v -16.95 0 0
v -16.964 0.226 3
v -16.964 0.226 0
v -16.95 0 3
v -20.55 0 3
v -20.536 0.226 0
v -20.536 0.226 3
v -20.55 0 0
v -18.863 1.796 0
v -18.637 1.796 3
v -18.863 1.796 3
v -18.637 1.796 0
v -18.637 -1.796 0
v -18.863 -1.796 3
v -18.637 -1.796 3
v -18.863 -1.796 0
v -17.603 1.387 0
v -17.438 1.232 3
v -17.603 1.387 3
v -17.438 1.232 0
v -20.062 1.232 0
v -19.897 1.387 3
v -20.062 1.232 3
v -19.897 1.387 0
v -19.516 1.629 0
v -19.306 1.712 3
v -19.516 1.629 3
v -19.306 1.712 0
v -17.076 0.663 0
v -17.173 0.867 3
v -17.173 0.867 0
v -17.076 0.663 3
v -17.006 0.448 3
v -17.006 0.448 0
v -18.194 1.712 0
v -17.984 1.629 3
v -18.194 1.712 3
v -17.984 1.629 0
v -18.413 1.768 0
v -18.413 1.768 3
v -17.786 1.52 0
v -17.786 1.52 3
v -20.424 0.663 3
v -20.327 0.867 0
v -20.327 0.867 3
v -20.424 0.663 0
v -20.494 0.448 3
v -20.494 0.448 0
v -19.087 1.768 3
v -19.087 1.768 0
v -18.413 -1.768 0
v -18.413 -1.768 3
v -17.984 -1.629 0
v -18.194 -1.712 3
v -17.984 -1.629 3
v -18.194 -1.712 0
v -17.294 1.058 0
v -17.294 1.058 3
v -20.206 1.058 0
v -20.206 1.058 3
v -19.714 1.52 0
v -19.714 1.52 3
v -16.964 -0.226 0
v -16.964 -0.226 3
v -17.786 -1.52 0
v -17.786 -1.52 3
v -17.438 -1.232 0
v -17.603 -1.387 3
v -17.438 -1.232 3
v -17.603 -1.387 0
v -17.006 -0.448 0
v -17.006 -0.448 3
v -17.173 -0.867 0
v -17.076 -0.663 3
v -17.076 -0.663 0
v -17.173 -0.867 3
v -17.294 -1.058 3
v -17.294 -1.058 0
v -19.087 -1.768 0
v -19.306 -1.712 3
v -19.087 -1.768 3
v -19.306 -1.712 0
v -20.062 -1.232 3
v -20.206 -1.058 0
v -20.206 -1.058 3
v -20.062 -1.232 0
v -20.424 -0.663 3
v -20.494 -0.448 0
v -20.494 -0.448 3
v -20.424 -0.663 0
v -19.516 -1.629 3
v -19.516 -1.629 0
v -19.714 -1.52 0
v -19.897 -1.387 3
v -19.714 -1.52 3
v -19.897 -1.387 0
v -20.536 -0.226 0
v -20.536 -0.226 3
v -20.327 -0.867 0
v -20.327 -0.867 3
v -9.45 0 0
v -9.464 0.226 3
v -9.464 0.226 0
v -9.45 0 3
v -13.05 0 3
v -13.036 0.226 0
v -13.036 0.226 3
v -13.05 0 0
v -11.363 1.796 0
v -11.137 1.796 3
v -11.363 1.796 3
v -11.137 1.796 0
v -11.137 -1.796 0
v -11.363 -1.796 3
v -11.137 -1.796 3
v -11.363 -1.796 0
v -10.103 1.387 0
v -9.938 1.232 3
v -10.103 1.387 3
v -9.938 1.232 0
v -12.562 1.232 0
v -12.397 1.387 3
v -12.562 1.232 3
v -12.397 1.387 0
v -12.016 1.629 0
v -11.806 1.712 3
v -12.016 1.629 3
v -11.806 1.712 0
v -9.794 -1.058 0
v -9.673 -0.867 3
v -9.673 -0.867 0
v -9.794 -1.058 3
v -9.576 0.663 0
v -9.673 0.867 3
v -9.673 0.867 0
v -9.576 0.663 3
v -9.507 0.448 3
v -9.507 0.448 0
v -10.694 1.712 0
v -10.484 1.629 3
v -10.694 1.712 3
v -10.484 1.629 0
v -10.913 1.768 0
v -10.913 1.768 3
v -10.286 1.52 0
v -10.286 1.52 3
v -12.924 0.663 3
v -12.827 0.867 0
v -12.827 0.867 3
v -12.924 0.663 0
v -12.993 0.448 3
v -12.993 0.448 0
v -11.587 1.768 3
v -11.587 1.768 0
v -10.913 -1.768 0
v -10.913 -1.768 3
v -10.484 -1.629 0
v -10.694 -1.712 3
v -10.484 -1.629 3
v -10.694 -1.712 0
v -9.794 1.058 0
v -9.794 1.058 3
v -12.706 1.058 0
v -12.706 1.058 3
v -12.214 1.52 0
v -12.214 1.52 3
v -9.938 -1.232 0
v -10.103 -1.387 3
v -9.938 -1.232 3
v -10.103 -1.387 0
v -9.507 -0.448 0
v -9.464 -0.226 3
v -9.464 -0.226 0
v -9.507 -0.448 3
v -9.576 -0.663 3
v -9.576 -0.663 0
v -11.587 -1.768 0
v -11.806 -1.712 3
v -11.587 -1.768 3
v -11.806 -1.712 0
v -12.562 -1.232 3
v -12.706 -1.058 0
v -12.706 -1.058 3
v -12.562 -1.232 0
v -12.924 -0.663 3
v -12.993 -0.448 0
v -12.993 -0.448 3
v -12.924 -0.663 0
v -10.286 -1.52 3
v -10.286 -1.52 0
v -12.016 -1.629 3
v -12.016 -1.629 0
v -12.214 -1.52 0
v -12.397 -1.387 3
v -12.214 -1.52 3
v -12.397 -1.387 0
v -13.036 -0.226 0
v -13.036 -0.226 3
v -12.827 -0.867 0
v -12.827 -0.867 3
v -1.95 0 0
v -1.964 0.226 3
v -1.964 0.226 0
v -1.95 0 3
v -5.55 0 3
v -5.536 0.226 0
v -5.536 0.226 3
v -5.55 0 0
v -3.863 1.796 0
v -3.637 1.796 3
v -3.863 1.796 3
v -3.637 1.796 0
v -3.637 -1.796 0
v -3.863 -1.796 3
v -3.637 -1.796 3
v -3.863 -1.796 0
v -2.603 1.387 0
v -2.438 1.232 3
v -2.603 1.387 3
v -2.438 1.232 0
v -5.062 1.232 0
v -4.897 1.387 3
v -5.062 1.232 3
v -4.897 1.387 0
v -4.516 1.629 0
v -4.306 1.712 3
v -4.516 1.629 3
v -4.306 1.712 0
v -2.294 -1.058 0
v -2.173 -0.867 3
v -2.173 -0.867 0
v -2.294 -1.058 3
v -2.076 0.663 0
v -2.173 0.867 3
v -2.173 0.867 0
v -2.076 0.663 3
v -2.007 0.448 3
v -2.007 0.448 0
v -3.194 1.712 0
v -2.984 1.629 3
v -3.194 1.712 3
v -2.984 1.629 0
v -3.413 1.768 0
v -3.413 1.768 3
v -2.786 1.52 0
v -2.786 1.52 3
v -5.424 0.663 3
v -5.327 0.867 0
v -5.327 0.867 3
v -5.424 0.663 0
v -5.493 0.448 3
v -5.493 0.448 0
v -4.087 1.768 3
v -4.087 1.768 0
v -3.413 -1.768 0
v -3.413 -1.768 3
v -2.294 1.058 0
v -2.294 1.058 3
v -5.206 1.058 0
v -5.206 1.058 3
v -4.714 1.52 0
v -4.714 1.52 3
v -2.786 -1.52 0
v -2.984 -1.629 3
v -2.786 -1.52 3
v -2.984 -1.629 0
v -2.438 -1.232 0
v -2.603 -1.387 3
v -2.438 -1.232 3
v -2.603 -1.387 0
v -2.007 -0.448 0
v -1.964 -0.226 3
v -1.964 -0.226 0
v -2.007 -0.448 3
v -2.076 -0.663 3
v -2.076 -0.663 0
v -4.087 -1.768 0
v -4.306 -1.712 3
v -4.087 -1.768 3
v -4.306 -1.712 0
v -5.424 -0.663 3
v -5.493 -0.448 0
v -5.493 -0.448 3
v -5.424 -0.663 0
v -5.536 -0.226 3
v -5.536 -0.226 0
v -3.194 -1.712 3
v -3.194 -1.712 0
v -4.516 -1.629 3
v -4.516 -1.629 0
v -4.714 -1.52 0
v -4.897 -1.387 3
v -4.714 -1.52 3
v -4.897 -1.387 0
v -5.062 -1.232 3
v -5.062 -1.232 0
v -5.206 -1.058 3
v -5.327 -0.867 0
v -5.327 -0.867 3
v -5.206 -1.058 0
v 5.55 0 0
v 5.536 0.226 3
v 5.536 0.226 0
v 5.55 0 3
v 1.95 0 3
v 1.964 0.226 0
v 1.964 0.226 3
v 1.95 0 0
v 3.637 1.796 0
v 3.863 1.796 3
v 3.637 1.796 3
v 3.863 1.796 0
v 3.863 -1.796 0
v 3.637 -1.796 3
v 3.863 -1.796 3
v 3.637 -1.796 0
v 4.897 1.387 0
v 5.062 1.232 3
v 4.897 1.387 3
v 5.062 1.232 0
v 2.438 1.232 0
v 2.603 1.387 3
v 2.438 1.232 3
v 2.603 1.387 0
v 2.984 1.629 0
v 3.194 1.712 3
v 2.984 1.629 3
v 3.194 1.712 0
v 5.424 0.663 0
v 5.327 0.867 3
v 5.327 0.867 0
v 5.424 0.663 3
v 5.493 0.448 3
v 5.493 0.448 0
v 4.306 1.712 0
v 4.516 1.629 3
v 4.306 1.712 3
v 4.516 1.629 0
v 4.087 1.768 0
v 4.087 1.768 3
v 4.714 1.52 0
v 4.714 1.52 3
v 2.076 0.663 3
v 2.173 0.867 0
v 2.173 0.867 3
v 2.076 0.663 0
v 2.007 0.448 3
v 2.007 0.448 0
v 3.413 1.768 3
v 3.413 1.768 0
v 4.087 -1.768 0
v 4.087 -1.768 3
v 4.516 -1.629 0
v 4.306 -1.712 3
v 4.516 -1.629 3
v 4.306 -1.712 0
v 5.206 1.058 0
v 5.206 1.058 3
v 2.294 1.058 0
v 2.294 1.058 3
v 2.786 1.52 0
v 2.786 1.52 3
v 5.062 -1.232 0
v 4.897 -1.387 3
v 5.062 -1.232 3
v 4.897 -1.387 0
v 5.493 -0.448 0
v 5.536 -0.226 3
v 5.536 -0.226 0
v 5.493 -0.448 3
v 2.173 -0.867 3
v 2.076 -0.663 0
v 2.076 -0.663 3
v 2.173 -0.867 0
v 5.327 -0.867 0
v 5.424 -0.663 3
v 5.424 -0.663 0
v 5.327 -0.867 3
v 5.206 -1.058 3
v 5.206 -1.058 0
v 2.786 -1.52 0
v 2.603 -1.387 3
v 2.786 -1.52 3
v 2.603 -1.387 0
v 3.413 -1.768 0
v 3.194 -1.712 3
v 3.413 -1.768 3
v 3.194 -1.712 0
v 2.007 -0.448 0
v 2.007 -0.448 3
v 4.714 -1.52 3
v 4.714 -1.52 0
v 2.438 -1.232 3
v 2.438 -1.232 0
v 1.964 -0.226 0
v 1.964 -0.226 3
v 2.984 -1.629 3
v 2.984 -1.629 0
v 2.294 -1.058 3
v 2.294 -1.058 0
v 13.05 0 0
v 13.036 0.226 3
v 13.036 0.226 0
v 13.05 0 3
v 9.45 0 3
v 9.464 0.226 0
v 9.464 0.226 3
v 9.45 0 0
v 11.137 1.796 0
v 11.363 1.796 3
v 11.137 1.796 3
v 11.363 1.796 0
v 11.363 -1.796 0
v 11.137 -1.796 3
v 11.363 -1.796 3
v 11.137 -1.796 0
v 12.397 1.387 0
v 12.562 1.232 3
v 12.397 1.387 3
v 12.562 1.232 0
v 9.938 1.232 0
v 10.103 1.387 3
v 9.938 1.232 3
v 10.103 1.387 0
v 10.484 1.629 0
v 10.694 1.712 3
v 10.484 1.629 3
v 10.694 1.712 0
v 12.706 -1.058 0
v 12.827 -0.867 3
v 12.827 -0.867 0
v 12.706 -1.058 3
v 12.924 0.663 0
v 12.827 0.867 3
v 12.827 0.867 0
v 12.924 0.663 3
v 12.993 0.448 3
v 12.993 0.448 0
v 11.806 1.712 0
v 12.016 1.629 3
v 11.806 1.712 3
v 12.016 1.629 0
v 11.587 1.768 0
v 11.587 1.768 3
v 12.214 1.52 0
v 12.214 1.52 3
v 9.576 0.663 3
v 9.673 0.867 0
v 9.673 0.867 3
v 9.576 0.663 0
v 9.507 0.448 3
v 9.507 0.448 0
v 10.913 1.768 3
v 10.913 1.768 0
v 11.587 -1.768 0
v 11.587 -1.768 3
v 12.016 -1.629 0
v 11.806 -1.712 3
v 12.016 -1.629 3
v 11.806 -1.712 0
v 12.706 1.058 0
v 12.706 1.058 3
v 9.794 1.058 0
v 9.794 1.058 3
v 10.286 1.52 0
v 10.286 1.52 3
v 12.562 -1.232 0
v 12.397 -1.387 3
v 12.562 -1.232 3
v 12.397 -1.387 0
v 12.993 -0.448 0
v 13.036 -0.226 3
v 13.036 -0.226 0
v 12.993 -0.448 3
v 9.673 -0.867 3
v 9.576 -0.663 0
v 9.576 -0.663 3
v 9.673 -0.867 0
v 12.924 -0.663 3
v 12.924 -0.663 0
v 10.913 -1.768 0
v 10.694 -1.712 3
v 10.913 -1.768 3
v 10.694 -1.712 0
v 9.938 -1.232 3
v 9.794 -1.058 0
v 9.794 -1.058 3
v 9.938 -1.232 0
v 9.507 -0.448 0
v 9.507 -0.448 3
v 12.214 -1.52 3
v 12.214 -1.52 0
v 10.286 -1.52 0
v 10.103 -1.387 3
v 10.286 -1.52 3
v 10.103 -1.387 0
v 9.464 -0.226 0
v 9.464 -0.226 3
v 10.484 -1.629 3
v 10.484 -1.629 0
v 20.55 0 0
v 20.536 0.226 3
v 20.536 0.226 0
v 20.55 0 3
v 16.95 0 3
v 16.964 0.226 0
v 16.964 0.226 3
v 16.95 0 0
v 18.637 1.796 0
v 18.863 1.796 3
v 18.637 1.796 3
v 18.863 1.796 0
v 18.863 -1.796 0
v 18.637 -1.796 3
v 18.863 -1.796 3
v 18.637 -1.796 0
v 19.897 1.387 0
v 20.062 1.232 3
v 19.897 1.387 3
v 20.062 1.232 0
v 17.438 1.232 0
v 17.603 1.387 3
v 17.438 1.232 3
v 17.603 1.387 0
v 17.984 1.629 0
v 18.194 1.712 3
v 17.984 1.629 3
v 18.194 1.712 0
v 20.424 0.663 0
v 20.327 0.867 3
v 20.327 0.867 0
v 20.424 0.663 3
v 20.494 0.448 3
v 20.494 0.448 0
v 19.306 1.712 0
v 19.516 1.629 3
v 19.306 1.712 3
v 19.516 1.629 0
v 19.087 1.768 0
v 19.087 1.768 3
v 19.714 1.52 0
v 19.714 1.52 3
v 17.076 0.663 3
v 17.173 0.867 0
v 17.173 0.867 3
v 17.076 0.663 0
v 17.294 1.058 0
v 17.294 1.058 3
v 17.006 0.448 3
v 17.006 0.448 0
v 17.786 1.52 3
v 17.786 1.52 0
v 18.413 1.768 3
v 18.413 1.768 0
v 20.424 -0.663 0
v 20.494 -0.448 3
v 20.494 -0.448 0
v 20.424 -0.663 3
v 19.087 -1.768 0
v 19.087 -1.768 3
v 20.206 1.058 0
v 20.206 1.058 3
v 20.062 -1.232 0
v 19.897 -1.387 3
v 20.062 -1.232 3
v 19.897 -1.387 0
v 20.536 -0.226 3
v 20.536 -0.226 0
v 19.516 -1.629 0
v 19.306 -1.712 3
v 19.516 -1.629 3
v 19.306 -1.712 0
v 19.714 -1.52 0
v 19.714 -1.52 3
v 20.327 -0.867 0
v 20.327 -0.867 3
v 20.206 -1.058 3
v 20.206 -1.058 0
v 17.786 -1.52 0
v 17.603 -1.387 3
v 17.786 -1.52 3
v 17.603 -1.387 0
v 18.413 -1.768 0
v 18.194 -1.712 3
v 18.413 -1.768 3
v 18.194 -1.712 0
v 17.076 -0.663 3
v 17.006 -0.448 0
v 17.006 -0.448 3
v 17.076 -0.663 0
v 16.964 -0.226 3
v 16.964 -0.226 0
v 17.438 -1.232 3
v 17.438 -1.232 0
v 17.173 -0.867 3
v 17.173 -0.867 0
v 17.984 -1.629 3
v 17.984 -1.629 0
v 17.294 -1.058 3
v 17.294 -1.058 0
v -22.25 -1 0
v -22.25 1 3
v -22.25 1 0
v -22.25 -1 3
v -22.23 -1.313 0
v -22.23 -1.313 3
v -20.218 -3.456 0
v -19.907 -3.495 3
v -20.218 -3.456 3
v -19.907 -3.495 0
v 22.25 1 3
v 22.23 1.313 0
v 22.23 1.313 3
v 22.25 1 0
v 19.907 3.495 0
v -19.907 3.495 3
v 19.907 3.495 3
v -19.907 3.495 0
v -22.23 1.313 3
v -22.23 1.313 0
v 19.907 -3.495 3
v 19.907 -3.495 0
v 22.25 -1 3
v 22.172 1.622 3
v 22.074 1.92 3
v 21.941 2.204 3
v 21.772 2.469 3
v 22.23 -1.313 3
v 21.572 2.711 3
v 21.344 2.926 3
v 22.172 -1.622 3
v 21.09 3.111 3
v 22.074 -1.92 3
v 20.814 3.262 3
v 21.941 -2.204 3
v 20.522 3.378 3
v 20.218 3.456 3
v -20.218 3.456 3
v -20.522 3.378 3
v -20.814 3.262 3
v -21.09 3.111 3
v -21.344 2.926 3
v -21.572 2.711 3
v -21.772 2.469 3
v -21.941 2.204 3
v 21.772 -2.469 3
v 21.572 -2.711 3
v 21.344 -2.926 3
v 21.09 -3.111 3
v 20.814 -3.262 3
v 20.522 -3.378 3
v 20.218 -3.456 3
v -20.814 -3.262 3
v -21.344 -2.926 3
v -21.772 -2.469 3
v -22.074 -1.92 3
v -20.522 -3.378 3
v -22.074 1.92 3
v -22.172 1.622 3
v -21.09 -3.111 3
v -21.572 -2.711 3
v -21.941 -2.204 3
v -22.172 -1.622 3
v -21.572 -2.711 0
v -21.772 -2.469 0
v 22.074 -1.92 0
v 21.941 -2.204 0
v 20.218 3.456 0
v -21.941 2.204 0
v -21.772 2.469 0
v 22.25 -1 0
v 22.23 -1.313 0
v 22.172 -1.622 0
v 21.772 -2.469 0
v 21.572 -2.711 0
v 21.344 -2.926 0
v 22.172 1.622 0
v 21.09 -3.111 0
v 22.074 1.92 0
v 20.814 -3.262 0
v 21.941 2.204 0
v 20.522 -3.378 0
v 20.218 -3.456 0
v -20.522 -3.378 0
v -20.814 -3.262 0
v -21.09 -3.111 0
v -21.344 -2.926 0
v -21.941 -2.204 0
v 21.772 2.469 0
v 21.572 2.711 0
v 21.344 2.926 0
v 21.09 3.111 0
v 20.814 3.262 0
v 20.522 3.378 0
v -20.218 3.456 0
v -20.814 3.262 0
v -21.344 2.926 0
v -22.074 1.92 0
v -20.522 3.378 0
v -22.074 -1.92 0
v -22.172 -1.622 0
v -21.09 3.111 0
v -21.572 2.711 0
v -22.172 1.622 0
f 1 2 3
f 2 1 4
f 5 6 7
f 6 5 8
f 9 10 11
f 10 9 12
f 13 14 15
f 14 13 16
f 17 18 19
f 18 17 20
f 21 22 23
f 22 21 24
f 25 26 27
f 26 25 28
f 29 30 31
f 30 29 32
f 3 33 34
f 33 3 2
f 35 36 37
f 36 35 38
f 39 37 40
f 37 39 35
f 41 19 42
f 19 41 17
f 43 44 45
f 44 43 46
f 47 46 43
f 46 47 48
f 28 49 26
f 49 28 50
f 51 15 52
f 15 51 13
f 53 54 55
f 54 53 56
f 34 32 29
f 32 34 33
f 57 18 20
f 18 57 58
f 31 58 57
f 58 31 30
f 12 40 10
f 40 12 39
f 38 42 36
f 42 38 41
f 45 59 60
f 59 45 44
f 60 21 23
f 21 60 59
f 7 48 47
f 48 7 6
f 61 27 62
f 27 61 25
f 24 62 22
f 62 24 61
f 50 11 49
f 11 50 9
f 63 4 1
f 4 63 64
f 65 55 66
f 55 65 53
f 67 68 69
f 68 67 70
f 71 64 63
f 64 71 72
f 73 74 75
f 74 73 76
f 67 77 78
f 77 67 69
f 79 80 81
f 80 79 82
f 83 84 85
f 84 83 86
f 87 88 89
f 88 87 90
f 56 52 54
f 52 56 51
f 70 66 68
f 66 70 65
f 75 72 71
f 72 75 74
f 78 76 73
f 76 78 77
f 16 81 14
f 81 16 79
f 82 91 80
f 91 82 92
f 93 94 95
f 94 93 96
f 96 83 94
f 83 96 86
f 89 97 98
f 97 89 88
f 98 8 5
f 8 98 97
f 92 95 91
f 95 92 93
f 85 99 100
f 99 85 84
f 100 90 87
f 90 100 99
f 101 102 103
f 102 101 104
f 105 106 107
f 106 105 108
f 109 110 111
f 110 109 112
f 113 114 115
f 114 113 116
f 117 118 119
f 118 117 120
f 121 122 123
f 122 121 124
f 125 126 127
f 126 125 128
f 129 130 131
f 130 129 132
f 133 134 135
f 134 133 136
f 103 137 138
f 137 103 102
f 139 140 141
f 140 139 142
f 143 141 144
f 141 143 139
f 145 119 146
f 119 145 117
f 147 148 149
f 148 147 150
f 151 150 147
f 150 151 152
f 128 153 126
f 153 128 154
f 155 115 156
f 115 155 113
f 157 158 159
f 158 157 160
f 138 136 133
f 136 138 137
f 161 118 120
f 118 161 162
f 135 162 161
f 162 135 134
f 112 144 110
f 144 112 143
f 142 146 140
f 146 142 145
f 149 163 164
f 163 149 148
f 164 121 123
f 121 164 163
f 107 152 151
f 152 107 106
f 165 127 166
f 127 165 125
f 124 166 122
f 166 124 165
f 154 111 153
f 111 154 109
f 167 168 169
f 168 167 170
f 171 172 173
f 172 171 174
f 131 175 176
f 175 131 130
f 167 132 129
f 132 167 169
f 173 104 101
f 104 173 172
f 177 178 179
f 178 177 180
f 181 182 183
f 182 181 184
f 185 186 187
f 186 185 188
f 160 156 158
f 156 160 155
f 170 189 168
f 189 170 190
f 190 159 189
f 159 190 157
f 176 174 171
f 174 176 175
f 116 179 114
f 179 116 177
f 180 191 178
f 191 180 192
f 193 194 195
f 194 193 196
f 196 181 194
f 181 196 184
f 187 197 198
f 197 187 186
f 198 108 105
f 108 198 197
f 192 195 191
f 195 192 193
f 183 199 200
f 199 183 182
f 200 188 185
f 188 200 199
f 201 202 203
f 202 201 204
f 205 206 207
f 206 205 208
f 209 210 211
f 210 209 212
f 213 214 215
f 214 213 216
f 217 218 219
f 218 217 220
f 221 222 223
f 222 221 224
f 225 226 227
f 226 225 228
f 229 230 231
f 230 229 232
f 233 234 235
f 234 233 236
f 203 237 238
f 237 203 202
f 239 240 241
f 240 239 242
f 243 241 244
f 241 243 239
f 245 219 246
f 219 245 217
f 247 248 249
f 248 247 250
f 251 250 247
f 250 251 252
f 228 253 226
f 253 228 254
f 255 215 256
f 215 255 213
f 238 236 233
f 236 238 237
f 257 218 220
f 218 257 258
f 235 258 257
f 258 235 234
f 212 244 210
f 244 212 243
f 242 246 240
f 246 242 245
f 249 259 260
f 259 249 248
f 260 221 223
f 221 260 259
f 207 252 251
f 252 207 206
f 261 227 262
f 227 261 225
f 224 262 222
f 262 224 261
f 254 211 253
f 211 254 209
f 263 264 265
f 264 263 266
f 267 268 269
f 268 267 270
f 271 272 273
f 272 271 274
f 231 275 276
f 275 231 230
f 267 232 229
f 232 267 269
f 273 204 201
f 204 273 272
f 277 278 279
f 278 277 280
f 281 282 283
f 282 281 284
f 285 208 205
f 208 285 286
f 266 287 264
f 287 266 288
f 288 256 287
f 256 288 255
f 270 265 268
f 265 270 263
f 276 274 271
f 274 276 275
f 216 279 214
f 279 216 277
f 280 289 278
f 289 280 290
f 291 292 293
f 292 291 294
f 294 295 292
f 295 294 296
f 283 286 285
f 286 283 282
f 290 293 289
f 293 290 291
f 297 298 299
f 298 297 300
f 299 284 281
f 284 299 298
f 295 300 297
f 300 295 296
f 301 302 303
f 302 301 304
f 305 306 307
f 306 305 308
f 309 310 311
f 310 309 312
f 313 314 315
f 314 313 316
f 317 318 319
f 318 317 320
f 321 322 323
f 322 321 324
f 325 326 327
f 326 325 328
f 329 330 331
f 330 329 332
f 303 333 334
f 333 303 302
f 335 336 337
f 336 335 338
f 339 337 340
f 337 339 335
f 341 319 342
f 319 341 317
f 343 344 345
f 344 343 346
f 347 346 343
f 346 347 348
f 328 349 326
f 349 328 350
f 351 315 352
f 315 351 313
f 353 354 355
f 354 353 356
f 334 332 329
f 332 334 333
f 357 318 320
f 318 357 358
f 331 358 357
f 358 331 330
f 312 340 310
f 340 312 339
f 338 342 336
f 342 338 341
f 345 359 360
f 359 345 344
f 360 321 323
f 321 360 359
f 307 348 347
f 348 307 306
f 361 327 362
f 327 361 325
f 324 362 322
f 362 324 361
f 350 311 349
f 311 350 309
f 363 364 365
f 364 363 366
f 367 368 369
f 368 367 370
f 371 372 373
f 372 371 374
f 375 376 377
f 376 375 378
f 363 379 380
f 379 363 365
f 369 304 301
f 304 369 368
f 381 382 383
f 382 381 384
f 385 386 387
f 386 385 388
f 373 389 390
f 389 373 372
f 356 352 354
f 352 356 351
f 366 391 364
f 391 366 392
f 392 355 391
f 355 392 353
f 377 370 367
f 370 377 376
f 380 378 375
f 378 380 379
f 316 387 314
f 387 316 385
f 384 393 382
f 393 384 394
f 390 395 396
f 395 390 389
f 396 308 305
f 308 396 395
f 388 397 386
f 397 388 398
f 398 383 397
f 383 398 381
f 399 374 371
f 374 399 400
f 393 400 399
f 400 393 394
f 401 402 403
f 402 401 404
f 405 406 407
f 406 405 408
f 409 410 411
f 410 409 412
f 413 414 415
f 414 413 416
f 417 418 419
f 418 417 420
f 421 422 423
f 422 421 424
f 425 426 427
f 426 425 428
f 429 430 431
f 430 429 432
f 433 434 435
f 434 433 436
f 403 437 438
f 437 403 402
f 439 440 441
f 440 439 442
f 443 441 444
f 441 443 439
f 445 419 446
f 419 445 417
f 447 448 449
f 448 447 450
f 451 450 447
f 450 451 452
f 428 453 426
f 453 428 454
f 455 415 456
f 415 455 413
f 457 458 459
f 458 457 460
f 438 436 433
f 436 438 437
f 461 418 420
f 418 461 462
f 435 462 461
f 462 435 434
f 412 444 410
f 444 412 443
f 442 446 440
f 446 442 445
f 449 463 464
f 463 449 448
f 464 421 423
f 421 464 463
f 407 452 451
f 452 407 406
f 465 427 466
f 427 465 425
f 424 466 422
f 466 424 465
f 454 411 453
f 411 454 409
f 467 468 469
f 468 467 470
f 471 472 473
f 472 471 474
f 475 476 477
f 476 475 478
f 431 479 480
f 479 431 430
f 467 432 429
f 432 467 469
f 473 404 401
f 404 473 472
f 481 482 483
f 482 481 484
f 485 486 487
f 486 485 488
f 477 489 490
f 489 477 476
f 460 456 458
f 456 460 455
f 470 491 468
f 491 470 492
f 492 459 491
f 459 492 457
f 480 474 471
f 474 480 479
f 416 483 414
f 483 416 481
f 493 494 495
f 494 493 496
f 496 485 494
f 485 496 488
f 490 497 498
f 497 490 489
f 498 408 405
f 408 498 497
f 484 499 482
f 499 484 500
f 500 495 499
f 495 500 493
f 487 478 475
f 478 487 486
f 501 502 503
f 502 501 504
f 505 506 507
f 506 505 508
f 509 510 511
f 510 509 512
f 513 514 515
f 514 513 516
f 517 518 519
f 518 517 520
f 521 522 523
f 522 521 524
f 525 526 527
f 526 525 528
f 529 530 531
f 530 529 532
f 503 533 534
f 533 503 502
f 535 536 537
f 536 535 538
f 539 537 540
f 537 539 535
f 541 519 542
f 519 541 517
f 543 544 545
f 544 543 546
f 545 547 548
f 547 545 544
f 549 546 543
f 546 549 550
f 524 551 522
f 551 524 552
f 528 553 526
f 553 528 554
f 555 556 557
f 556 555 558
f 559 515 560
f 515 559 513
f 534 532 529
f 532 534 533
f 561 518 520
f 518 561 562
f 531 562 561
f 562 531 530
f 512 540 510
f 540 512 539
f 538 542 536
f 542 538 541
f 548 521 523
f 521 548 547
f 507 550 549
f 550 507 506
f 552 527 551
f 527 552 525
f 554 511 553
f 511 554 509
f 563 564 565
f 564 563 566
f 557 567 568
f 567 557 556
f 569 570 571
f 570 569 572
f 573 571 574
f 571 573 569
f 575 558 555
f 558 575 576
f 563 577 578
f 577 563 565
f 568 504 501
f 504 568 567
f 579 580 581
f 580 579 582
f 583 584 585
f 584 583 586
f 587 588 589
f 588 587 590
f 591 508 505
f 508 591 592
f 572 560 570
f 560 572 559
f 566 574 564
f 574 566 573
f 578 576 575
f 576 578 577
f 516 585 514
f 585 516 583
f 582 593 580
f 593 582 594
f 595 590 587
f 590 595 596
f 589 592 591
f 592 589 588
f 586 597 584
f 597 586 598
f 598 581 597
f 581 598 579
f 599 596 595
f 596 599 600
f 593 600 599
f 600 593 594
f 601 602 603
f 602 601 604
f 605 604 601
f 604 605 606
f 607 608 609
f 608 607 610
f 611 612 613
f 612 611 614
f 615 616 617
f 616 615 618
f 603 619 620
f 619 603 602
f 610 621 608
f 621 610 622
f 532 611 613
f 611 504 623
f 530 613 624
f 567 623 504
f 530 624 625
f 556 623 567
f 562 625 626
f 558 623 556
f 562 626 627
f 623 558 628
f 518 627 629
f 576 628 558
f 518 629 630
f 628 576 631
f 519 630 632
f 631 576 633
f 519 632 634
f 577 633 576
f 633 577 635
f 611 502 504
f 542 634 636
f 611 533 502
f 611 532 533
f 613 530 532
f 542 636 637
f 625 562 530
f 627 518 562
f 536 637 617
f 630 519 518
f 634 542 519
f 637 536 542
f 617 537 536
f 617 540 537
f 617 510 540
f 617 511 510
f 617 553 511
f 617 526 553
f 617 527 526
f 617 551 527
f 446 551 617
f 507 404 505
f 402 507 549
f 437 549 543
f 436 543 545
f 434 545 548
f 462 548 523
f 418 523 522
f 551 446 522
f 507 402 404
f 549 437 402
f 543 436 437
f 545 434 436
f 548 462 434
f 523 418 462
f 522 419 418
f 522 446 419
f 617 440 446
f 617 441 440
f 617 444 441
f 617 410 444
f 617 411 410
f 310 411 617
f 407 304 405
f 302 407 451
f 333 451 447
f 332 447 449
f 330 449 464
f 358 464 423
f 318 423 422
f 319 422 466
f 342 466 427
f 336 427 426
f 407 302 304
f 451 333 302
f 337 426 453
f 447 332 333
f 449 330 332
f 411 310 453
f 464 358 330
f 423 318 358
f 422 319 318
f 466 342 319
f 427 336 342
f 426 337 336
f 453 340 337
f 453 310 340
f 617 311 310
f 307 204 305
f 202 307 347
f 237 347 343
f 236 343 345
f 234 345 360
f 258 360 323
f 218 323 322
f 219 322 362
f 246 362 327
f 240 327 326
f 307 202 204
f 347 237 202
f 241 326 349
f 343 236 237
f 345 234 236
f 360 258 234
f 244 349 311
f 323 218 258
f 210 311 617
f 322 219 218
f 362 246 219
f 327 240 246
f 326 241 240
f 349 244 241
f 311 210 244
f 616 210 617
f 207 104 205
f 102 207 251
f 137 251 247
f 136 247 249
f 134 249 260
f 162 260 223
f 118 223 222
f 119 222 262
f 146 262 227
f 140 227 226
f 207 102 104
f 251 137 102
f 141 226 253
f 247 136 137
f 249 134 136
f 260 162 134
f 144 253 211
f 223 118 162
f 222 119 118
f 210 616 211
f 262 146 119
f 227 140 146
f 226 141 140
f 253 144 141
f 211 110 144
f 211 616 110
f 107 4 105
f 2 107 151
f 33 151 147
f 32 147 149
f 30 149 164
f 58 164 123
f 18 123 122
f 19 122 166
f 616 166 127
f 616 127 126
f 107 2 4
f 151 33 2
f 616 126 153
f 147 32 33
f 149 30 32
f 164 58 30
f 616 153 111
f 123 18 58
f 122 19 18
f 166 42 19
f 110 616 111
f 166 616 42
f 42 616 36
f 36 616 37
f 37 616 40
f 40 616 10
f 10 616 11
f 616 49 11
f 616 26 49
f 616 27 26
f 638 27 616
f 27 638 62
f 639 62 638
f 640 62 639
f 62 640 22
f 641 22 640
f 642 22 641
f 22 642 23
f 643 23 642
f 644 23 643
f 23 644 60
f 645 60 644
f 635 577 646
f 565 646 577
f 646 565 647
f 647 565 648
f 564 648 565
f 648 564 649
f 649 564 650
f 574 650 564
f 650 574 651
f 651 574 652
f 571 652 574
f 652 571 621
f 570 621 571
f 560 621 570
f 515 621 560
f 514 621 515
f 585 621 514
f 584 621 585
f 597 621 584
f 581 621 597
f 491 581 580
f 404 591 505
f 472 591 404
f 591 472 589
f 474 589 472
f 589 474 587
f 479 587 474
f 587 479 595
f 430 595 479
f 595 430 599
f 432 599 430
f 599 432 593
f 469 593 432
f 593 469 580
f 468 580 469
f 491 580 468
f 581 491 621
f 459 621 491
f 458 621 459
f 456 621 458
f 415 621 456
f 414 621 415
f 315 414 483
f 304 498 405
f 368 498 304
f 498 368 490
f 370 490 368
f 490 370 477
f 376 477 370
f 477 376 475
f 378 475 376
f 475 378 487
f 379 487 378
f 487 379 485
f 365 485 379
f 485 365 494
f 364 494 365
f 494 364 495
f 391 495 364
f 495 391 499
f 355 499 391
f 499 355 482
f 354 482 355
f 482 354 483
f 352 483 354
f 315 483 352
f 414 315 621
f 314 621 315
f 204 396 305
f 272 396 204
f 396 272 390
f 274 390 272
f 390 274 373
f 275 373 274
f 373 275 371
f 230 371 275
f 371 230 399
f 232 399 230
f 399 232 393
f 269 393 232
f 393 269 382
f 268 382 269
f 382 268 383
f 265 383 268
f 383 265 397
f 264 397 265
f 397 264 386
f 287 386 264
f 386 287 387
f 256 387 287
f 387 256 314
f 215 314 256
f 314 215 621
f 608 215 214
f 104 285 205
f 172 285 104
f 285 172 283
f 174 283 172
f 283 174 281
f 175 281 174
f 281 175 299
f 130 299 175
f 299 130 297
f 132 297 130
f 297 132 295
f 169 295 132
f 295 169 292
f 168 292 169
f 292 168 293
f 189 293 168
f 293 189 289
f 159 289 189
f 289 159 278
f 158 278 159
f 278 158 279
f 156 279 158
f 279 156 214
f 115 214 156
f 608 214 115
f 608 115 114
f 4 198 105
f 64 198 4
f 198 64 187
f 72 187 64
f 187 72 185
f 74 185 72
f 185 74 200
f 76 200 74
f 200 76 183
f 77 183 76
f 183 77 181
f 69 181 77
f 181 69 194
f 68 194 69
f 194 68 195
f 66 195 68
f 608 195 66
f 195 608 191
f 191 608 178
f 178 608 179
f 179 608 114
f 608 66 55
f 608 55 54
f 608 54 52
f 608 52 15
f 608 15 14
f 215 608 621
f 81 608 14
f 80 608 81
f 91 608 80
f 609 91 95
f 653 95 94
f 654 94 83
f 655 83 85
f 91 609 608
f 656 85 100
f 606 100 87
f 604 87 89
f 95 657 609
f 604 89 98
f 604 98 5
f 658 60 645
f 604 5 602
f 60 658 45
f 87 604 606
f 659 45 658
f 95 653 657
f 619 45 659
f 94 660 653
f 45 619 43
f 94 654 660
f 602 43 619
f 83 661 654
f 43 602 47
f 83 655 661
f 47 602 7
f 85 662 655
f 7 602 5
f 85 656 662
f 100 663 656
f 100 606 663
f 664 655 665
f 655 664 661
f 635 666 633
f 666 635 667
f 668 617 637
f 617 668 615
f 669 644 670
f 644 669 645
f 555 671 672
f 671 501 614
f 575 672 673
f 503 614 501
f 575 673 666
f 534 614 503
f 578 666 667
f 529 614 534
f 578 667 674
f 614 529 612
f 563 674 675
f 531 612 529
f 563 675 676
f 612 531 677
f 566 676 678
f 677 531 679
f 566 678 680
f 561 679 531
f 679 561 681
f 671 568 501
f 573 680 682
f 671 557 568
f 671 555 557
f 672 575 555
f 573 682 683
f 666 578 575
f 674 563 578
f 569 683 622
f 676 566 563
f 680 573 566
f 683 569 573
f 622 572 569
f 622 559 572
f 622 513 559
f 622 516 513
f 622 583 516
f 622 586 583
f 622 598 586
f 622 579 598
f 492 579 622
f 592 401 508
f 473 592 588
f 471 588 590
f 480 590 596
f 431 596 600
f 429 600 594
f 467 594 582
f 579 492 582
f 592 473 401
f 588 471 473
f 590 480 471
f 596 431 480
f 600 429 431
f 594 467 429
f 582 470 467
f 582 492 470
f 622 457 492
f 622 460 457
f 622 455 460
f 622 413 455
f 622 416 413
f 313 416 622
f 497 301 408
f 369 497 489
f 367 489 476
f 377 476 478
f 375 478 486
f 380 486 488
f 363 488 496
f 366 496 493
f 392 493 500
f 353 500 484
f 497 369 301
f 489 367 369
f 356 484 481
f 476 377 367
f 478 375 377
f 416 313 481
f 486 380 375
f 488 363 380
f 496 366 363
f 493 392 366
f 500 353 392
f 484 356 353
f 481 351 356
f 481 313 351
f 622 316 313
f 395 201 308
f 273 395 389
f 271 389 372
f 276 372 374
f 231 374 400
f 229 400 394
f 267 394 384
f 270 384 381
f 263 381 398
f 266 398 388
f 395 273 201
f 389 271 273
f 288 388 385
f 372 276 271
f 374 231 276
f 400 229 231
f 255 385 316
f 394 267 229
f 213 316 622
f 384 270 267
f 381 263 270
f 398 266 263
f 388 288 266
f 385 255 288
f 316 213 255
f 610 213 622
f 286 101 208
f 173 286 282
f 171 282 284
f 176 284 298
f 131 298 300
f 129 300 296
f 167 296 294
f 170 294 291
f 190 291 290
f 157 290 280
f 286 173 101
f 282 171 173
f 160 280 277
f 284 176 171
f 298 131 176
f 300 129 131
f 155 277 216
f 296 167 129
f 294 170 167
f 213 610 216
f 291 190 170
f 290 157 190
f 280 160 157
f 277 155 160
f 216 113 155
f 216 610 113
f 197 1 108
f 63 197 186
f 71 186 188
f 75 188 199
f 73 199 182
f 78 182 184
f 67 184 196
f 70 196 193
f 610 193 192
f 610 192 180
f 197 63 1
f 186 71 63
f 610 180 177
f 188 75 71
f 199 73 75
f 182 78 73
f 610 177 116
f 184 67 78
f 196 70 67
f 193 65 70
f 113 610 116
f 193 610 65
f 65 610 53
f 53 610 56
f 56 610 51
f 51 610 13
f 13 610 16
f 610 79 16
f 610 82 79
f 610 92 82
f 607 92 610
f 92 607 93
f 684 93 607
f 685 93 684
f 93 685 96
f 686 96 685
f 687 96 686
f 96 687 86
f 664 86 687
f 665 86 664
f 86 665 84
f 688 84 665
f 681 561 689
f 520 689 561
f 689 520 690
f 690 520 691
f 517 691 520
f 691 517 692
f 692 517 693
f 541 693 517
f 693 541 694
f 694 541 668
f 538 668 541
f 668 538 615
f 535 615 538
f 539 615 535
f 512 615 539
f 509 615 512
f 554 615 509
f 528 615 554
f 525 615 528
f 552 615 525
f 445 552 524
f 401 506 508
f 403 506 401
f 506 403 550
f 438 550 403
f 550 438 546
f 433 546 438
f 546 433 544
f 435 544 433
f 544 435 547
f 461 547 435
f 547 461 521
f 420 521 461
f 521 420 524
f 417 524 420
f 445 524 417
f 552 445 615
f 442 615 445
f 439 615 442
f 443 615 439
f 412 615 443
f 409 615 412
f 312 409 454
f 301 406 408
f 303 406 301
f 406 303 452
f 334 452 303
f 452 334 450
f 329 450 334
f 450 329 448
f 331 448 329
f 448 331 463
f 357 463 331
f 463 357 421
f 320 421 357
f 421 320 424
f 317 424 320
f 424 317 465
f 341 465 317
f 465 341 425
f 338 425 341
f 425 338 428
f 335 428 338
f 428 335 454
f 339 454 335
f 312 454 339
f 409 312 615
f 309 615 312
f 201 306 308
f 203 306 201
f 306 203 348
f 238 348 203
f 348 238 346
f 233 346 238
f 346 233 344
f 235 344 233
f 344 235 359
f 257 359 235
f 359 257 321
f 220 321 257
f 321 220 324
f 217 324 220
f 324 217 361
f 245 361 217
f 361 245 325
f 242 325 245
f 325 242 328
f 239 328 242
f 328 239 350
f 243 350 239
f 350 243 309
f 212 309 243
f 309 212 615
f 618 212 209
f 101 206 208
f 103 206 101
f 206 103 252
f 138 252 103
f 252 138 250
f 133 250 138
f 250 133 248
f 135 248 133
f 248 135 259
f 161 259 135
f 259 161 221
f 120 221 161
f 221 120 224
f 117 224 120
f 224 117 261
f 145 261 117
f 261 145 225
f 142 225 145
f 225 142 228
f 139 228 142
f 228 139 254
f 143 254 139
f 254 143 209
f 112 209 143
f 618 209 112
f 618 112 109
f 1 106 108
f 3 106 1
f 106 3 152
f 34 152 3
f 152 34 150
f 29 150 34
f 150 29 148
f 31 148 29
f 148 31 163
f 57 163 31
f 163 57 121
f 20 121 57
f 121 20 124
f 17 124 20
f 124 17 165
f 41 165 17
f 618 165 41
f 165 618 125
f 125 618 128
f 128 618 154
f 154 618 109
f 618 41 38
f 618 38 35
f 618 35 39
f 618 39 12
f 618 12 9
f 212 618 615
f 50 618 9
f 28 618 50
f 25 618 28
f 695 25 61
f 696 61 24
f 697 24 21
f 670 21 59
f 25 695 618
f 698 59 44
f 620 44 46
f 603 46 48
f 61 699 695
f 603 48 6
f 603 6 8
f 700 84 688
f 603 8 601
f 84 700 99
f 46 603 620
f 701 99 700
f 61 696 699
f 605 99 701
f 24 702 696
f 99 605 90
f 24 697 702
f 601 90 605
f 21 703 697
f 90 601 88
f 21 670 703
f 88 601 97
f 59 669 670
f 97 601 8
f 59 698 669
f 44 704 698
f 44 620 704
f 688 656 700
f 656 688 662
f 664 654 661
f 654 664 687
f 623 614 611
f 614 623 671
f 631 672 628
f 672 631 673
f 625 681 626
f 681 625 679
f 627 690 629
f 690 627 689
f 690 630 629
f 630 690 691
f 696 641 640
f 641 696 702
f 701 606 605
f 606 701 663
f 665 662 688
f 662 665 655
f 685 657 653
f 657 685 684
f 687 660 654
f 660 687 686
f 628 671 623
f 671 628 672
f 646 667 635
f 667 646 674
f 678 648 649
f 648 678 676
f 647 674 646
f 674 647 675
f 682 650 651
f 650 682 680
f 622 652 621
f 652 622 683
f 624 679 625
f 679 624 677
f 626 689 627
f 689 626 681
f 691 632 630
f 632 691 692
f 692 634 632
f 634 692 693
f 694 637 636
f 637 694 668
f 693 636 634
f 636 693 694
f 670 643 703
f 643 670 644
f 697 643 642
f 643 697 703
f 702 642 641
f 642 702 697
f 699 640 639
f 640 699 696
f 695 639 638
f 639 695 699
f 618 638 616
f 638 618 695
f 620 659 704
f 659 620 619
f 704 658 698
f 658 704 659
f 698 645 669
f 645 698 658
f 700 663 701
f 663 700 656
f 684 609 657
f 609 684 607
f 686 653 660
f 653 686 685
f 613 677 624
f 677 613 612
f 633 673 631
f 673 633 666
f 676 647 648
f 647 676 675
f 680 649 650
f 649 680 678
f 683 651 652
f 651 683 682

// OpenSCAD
$fn = 50;


difference() {
	union() {
		translate(v = [0, 0, 0]) {
			rotate(a = [0, 0, 0]) {
				hull() {
					translate(v = [-19.7500000000, 1.0000000000, 0]) {
						rotate(a = [0, 0, 0]) {
							translate(v = [0, 0, 0]) {
								rotate(a = [0, 0, 0]) {
									cylinder(h = 3, r = 2.5000000000);
								}
							}
						}
					}
					translate(v = [19.7500000000, 1.0000000000, 0]) {
						rotate(a = [0, 0, 0]) {
							translate(v = [0, 0, 0]) {
								rotate(a = [0, 0, 0]) {
									cylinder(h = 3, r = 2.5000000000);
								}
							}
						}
					}
					translate(v = [-19.7500000000, -1.0000000000, 0]) {
						rotate(a = [0, 0, 0]) {
							translate(v = [0, 0, 0]) {
								rotate(a = [0, 0, 0]) {
									cylinder(h = 3, r = 2.5000000000);
								}
							}
						}
					}
					translate(v = [19.7500000000, -1.0000000000, 0]) {
						rotate(a = [0, 0, 0]) {
							translate(v = [0, 0, 0]) {
								rotate(a = [0, 0, 0]) {
									cylinder(h = 3, r = 2.5000000000);
								}
							}
						}
					}
				}
			}
		}
	}
	union() {
		translate(v = [-18.7500000000, 0.0000000000, 0]) {
			rotate(a = [0, 0, 0]) {
				translate(v = [0, 0, -50]) {
					rotate(a = [0, 0, 0]) {
						cylinder(h = 100, r = 1.8000000000);
					}
				}
			}
		}
		translate(v = [-11.2500000000, 0.0000000000, 0]) {
			rotate(a = [0, 0, 0]) {
				translate(v = [0, 0, -50]) {
					rotate(a = [0, 0, 0]) {
						cylinder(h = 100, r = 1.8000000000);
					}
				}
			}
		}
		translate(v = [-3.7500000000, 0.0000000000, 0]) {
			rotate(a = [0, 0, 0]) {
				translate(v = [0, 0, -50]) {
					rotate(a = [0, 0, 0]) {
						cylinder(h = 100, r = 1.8000000000);
					}
				}
			}
		}
		translate(v = [3.7500000000, 0.0000000000, 0]) {
			rotate(a = [0, 0, 0]) {
				translate(v = [0, 0, -50]) {
					rotate(a = [0, 0, 0]) {
						cylinder(h = 100, r = 1.8000000000);
					}
				}
			}
		}
		translate(v = [11.2500000000, 0.0000000000, 0]) {
			rotate(a = [0, 0, 0]) {
				translate(v = [0, 0, -50]) {
					rotate(a = [0, 0, 0]) {
						cylinder(h = 100, r = 1.8000000000);
					}
				}
			}
		}
		translate(v = [18.7500000000, 0.0000000000, 0]) {
			rotate(a = [0, 0, 0]) {
				translate(v = [0, 0, -50]) {
					rotate(a = [0, 0, 0]) {
						cylinder(h = 100, r = 1.8000000000);
					}
				}
			}
		}
	}
}
